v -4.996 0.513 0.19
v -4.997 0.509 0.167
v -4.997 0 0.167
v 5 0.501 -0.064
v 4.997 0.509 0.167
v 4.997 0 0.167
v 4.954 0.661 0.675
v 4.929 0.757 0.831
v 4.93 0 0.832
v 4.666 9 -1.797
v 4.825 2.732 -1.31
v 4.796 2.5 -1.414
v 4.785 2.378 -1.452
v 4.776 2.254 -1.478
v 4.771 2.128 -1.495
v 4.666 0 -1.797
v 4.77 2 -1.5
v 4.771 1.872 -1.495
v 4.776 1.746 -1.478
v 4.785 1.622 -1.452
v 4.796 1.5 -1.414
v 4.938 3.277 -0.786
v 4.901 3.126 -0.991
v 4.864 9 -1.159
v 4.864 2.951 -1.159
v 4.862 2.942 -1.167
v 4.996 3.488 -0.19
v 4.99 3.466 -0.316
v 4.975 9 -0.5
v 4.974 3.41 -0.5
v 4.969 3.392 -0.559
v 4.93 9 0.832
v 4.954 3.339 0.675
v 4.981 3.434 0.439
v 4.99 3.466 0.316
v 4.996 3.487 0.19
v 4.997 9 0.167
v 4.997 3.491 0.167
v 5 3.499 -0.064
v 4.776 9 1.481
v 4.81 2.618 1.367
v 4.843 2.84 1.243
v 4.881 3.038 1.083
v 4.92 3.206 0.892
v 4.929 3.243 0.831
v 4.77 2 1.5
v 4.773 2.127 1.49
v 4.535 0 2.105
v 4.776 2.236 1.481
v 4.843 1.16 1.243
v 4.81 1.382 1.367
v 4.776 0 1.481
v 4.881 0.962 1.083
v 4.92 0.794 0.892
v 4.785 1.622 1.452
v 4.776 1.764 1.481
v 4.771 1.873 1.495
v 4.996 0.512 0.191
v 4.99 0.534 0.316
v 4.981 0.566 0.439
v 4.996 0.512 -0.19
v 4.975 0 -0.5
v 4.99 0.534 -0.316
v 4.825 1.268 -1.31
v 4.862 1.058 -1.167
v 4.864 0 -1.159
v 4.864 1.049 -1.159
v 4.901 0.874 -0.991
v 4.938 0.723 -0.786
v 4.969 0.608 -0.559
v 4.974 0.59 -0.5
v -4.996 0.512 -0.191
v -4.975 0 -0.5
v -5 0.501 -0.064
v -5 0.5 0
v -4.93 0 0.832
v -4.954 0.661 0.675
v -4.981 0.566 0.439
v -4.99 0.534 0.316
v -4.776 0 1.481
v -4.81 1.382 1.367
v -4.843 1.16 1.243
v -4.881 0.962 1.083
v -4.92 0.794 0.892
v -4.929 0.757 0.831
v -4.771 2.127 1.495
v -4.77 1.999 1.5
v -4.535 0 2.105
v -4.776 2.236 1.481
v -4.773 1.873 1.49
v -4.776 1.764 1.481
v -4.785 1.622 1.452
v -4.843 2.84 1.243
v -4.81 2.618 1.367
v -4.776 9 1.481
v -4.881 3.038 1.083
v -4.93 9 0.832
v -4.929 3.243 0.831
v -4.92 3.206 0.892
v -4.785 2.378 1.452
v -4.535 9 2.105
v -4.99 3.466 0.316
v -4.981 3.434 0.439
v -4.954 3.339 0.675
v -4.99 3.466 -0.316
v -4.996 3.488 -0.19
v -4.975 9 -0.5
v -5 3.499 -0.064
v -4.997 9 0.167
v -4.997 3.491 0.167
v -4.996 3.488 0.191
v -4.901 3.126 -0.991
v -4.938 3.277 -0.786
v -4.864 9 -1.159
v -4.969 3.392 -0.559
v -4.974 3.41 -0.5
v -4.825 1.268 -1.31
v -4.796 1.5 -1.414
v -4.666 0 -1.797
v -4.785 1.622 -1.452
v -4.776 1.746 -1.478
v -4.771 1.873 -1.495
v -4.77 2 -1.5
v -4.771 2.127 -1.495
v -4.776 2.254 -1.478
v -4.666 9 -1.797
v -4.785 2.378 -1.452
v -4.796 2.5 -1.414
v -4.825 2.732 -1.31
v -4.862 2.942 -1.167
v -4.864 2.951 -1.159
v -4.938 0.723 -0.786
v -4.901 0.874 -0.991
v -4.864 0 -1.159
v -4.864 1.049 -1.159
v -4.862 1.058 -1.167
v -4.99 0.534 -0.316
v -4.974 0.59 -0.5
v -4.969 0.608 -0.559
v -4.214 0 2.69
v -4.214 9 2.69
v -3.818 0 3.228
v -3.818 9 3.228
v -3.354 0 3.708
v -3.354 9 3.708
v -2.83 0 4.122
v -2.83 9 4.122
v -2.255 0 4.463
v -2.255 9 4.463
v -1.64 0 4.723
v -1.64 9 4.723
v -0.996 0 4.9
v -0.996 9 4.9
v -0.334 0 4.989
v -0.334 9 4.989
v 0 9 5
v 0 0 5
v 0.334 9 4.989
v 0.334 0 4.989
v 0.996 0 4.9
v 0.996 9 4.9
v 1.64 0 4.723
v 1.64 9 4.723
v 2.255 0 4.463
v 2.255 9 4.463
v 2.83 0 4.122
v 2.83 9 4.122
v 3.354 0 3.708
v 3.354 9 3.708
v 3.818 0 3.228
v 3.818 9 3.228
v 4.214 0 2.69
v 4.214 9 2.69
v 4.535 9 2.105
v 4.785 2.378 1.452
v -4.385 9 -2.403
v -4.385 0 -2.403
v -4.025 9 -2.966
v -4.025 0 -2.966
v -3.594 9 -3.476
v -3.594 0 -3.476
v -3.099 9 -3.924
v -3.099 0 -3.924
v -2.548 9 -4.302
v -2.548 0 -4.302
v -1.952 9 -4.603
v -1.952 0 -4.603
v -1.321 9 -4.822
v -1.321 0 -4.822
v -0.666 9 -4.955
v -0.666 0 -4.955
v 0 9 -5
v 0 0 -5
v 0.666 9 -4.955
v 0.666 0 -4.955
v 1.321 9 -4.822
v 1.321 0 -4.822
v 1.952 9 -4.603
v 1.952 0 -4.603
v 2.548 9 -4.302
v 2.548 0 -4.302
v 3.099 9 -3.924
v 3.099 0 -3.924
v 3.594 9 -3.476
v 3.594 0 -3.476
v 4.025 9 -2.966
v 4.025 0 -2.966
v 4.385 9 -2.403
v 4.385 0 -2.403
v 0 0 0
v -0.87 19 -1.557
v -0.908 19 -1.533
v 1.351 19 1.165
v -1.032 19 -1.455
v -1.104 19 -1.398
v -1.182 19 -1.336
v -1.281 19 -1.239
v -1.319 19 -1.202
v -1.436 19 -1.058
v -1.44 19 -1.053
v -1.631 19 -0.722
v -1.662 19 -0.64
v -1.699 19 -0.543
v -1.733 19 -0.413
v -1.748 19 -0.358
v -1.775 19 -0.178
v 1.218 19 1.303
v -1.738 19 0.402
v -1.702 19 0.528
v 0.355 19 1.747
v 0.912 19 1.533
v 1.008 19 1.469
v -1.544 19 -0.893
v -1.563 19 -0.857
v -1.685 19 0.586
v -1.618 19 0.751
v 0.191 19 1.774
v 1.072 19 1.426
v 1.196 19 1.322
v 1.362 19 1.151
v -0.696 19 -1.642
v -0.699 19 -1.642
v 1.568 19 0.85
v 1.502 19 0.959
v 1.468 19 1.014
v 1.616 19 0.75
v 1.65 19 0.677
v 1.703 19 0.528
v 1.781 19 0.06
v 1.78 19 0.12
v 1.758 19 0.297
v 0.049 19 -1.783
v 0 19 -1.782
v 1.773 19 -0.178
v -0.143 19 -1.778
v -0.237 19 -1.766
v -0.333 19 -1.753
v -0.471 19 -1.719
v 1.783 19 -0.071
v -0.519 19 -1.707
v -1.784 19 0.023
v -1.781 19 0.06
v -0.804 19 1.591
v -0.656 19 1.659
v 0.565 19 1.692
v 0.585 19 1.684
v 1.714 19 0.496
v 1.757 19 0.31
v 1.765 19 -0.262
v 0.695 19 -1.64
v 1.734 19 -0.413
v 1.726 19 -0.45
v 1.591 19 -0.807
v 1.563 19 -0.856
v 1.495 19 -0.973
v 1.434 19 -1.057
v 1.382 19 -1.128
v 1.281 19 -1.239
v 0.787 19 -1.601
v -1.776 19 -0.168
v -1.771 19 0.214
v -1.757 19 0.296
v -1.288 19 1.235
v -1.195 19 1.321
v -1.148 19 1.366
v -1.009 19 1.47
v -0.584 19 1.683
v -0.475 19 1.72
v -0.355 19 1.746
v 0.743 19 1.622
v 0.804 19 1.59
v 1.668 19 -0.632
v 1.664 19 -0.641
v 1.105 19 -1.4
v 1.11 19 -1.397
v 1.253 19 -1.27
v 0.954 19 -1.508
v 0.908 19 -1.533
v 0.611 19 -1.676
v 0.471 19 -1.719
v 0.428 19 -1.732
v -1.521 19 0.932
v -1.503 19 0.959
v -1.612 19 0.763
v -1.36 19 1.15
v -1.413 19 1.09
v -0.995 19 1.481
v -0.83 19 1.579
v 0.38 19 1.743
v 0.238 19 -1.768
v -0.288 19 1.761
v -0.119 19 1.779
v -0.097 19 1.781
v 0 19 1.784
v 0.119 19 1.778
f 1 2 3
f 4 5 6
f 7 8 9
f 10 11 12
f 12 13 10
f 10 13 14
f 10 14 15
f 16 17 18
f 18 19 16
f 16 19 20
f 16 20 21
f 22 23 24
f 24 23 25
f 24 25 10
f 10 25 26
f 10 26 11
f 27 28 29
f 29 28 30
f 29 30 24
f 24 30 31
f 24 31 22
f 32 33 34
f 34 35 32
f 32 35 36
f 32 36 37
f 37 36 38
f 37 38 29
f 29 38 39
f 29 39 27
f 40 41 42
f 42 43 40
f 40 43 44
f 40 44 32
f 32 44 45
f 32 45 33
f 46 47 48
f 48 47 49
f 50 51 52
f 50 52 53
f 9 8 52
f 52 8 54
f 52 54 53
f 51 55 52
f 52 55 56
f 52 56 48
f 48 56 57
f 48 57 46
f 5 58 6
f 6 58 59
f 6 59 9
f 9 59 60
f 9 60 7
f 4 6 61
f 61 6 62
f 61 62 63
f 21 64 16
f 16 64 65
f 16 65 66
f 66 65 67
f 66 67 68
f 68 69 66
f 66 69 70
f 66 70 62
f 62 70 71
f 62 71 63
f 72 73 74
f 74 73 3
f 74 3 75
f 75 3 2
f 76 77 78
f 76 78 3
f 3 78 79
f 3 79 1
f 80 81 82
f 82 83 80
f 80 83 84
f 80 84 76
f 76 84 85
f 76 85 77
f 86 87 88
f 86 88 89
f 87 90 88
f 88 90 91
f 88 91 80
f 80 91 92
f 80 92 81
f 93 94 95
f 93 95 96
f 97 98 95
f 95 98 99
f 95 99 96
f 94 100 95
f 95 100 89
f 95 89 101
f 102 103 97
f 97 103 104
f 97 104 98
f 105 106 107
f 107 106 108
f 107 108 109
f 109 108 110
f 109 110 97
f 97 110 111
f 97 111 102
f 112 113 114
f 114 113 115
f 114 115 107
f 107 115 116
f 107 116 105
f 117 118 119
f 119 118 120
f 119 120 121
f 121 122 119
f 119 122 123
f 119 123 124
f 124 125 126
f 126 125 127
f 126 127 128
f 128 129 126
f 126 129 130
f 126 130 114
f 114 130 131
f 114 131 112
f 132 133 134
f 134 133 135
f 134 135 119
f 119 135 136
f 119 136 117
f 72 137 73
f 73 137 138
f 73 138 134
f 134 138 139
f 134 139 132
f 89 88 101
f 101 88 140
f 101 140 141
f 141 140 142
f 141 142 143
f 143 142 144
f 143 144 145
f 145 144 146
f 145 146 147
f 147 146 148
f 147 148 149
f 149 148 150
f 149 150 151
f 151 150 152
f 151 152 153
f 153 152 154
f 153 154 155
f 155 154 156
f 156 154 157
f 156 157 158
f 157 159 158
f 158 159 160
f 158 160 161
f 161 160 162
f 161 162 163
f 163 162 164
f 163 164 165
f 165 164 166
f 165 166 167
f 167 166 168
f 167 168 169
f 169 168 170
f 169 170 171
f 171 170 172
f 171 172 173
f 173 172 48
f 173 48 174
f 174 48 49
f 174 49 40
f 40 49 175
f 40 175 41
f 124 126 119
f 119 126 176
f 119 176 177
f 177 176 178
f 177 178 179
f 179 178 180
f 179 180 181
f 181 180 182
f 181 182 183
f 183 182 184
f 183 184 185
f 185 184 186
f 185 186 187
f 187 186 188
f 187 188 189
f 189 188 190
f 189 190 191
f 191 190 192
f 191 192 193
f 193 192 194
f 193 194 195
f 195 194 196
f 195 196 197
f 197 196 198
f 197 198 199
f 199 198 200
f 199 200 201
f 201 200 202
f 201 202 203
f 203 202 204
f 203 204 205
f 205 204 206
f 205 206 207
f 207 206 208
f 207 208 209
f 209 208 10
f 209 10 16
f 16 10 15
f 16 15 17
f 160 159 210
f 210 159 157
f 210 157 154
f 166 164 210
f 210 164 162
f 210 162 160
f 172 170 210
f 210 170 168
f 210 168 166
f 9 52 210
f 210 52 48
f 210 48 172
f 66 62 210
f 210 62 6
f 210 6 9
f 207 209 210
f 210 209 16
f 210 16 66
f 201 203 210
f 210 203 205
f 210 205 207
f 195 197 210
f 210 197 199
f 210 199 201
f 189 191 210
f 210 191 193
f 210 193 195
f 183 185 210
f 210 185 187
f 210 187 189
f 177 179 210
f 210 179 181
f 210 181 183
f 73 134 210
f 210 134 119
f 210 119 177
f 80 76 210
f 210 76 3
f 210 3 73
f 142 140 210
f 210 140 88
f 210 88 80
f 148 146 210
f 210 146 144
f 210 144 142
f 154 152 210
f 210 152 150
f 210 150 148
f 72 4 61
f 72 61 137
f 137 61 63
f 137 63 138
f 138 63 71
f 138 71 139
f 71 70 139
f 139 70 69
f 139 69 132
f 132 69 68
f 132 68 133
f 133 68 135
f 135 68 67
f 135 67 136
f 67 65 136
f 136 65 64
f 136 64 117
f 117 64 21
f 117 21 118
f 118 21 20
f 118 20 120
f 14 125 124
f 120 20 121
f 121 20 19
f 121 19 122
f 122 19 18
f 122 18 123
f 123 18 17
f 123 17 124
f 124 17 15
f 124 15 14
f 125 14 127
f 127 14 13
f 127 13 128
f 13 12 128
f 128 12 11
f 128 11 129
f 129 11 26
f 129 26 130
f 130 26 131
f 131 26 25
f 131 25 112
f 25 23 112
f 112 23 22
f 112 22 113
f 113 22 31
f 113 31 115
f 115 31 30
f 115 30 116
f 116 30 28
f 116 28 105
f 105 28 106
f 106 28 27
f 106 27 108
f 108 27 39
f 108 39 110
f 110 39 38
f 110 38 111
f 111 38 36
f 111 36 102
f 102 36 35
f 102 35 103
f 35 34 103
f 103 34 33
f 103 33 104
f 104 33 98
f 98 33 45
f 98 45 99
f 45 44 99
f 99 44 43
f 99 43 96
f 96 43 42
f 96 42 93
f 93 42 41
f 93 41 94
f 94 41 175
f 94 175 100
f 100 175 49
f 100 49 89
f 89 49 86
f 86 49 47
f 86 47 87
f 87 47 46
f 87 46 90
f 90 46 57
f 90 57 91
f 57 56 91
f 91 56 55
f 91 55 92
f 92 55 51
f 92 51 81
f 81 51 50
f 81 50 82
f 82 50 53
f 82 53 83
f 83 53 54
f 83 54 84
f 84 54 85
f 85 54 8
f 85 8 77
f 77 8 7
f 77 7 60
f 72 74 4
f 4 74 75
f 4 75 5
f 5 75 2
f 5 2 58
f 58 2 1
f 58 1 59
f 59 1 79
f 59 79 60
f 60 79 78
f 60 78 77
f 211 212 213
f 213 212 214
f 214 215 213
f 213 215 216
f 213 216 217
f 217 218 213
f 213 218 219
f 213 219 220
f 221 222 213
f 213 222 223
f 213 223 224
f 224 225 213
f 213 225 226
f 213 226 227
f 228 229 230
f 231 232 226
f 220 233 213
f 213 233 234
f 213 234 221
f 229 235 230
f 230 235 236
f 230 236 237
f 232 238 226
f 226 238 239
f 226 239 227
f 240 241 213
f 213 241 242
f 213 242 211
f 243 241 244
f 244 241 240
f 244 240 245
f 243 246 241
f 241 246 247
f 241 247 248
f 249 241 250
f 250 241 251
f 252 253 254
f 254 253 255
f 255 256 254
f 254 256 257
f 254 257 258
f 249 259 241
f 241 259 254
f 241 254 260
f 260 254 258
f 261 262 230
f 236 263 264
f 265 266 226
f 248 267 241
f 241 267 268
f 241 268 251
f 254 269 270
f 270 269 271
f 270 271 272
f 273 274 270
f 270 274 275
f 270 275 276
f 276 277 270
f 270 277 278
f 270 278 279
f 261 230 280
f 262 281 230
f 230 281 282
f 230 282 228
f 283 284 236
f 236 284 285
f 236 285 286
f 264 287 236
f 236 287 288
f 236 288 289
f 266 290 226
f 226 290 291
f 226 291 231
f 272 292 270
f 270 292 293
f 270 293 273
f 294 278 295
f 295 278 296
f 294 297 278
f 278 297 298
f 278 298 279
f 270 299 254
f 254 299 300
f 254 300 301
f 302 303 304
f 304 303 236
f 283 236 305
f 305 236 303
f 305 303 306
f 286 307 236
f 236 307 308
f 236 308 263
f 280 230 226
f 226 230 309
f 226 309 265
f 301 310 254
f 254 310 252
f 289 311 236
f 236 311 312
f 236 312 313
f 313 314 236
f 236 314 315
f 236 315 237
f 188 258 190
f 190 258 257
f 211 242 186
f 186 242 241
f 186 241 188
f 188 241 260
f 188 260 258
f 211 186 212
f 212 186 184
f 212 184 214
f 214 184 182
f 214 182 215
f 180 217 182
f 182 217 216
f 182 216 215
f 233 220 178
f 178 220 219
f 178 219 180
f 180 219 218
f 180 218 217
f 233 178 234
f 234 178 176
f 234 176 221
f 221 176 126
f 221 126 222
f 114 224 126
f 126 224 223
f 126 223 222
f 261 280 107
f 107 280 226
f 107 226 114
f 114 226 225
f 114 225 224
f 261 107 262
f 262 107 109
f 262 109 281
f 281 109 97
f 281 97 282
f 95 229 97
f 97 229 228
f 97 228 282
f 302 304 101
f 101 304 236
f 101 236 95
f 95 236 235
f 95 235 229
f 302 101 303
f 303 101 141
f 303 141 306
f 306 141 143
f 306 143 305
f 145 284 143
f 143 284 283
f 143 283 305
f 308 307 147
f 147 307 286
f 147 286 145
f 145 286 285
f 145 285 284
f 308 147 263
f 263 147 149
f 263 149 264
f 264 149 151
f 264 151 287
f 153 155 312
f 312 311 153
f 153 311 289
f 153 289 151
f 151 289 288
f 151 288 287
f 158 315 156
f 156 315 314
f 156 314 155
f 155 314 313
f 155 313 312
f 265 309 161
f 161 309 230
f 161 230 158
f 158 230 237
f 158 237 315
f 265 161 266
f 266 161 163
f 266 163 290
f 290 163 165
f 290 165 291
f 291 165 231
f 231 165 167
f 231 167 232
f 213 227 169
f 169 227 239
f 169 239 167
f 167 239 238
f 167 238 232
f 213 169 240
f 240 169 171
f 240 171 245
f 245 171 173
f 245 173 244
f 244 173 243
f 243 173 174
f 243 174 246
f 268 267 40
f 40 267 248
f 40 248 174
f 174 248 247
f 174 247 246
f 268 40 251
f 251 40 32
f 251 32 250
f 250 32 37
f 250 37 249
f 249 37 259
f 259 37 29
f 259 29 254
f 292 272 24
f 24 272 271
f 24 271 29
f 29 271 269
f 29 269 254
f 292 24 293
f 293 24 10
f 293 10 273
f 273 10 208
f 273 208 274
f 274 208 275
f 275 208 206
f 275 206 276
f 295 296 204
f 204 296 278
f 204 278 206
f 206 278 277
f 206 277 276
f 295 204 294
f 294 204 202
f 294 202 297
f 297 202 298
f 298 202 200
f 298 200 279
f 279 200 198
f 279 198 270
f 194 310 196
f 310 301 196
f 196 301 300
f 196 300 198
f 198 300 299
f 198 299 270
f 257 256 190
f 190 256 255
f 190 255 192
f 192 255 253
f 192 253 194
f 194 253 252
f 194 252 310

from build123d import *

# Parameters (mm, degrees)
SKETCH1_R             = 5
BODY_DEPTH            = 9
PIN_INSERT_DEPTH      = 12.445523142
PIN_INSERT_DEPTH_BACK = 12.445523142
SKETCH2_R             = 1.5
HEAD_SA_R             = 1.784


with BuildPart() as part:
    # Sketch1 → body (new body)
    with BuildSketch(Plane(origin=(0, 0, 0), x_dir=(1, 0, 0), z_dir=(0, 1, 0))):
        with Locations(Location((0, 0, 0), (0, 0, 270))):
            Circle(SKETCH1_R)
    extrude(amount=BODY_DEPTH)

    # Sketch2 → pin insert (cut, two sides: drawn at the far end of the back side and taken through both)
    with BuildSketch(Plane(origin=(0, 0, 0), x_dir=(0, 0, -1), z_dir=(1, 0, 0)).offset(-PIN_INSERT_DEPTH_BACK)):
        with Locations((0, 2)):
            Circle(SKETCH2_R)
    extrude(amount=PIN_INSERT_DEPTH + PIN_INSERT_DEPTH_BACK, mode=Mode.SUBTRACT)

    # head SA → section 0 of cone
    with BuildSketch(Plane(origin=(0, 19, 0), x_dir=(1, 0, 0), z_dir=(0, 1, 0)), mode=Mode.PRIVATE) as cone_s0:
        Circle(HEAD_SA_R)
    # loft up to a face of the part (cone)
    loft([cone_s0.sketch, part.faces().sort_by_distance((0, 9, 0))[0]])


solid = part.part
